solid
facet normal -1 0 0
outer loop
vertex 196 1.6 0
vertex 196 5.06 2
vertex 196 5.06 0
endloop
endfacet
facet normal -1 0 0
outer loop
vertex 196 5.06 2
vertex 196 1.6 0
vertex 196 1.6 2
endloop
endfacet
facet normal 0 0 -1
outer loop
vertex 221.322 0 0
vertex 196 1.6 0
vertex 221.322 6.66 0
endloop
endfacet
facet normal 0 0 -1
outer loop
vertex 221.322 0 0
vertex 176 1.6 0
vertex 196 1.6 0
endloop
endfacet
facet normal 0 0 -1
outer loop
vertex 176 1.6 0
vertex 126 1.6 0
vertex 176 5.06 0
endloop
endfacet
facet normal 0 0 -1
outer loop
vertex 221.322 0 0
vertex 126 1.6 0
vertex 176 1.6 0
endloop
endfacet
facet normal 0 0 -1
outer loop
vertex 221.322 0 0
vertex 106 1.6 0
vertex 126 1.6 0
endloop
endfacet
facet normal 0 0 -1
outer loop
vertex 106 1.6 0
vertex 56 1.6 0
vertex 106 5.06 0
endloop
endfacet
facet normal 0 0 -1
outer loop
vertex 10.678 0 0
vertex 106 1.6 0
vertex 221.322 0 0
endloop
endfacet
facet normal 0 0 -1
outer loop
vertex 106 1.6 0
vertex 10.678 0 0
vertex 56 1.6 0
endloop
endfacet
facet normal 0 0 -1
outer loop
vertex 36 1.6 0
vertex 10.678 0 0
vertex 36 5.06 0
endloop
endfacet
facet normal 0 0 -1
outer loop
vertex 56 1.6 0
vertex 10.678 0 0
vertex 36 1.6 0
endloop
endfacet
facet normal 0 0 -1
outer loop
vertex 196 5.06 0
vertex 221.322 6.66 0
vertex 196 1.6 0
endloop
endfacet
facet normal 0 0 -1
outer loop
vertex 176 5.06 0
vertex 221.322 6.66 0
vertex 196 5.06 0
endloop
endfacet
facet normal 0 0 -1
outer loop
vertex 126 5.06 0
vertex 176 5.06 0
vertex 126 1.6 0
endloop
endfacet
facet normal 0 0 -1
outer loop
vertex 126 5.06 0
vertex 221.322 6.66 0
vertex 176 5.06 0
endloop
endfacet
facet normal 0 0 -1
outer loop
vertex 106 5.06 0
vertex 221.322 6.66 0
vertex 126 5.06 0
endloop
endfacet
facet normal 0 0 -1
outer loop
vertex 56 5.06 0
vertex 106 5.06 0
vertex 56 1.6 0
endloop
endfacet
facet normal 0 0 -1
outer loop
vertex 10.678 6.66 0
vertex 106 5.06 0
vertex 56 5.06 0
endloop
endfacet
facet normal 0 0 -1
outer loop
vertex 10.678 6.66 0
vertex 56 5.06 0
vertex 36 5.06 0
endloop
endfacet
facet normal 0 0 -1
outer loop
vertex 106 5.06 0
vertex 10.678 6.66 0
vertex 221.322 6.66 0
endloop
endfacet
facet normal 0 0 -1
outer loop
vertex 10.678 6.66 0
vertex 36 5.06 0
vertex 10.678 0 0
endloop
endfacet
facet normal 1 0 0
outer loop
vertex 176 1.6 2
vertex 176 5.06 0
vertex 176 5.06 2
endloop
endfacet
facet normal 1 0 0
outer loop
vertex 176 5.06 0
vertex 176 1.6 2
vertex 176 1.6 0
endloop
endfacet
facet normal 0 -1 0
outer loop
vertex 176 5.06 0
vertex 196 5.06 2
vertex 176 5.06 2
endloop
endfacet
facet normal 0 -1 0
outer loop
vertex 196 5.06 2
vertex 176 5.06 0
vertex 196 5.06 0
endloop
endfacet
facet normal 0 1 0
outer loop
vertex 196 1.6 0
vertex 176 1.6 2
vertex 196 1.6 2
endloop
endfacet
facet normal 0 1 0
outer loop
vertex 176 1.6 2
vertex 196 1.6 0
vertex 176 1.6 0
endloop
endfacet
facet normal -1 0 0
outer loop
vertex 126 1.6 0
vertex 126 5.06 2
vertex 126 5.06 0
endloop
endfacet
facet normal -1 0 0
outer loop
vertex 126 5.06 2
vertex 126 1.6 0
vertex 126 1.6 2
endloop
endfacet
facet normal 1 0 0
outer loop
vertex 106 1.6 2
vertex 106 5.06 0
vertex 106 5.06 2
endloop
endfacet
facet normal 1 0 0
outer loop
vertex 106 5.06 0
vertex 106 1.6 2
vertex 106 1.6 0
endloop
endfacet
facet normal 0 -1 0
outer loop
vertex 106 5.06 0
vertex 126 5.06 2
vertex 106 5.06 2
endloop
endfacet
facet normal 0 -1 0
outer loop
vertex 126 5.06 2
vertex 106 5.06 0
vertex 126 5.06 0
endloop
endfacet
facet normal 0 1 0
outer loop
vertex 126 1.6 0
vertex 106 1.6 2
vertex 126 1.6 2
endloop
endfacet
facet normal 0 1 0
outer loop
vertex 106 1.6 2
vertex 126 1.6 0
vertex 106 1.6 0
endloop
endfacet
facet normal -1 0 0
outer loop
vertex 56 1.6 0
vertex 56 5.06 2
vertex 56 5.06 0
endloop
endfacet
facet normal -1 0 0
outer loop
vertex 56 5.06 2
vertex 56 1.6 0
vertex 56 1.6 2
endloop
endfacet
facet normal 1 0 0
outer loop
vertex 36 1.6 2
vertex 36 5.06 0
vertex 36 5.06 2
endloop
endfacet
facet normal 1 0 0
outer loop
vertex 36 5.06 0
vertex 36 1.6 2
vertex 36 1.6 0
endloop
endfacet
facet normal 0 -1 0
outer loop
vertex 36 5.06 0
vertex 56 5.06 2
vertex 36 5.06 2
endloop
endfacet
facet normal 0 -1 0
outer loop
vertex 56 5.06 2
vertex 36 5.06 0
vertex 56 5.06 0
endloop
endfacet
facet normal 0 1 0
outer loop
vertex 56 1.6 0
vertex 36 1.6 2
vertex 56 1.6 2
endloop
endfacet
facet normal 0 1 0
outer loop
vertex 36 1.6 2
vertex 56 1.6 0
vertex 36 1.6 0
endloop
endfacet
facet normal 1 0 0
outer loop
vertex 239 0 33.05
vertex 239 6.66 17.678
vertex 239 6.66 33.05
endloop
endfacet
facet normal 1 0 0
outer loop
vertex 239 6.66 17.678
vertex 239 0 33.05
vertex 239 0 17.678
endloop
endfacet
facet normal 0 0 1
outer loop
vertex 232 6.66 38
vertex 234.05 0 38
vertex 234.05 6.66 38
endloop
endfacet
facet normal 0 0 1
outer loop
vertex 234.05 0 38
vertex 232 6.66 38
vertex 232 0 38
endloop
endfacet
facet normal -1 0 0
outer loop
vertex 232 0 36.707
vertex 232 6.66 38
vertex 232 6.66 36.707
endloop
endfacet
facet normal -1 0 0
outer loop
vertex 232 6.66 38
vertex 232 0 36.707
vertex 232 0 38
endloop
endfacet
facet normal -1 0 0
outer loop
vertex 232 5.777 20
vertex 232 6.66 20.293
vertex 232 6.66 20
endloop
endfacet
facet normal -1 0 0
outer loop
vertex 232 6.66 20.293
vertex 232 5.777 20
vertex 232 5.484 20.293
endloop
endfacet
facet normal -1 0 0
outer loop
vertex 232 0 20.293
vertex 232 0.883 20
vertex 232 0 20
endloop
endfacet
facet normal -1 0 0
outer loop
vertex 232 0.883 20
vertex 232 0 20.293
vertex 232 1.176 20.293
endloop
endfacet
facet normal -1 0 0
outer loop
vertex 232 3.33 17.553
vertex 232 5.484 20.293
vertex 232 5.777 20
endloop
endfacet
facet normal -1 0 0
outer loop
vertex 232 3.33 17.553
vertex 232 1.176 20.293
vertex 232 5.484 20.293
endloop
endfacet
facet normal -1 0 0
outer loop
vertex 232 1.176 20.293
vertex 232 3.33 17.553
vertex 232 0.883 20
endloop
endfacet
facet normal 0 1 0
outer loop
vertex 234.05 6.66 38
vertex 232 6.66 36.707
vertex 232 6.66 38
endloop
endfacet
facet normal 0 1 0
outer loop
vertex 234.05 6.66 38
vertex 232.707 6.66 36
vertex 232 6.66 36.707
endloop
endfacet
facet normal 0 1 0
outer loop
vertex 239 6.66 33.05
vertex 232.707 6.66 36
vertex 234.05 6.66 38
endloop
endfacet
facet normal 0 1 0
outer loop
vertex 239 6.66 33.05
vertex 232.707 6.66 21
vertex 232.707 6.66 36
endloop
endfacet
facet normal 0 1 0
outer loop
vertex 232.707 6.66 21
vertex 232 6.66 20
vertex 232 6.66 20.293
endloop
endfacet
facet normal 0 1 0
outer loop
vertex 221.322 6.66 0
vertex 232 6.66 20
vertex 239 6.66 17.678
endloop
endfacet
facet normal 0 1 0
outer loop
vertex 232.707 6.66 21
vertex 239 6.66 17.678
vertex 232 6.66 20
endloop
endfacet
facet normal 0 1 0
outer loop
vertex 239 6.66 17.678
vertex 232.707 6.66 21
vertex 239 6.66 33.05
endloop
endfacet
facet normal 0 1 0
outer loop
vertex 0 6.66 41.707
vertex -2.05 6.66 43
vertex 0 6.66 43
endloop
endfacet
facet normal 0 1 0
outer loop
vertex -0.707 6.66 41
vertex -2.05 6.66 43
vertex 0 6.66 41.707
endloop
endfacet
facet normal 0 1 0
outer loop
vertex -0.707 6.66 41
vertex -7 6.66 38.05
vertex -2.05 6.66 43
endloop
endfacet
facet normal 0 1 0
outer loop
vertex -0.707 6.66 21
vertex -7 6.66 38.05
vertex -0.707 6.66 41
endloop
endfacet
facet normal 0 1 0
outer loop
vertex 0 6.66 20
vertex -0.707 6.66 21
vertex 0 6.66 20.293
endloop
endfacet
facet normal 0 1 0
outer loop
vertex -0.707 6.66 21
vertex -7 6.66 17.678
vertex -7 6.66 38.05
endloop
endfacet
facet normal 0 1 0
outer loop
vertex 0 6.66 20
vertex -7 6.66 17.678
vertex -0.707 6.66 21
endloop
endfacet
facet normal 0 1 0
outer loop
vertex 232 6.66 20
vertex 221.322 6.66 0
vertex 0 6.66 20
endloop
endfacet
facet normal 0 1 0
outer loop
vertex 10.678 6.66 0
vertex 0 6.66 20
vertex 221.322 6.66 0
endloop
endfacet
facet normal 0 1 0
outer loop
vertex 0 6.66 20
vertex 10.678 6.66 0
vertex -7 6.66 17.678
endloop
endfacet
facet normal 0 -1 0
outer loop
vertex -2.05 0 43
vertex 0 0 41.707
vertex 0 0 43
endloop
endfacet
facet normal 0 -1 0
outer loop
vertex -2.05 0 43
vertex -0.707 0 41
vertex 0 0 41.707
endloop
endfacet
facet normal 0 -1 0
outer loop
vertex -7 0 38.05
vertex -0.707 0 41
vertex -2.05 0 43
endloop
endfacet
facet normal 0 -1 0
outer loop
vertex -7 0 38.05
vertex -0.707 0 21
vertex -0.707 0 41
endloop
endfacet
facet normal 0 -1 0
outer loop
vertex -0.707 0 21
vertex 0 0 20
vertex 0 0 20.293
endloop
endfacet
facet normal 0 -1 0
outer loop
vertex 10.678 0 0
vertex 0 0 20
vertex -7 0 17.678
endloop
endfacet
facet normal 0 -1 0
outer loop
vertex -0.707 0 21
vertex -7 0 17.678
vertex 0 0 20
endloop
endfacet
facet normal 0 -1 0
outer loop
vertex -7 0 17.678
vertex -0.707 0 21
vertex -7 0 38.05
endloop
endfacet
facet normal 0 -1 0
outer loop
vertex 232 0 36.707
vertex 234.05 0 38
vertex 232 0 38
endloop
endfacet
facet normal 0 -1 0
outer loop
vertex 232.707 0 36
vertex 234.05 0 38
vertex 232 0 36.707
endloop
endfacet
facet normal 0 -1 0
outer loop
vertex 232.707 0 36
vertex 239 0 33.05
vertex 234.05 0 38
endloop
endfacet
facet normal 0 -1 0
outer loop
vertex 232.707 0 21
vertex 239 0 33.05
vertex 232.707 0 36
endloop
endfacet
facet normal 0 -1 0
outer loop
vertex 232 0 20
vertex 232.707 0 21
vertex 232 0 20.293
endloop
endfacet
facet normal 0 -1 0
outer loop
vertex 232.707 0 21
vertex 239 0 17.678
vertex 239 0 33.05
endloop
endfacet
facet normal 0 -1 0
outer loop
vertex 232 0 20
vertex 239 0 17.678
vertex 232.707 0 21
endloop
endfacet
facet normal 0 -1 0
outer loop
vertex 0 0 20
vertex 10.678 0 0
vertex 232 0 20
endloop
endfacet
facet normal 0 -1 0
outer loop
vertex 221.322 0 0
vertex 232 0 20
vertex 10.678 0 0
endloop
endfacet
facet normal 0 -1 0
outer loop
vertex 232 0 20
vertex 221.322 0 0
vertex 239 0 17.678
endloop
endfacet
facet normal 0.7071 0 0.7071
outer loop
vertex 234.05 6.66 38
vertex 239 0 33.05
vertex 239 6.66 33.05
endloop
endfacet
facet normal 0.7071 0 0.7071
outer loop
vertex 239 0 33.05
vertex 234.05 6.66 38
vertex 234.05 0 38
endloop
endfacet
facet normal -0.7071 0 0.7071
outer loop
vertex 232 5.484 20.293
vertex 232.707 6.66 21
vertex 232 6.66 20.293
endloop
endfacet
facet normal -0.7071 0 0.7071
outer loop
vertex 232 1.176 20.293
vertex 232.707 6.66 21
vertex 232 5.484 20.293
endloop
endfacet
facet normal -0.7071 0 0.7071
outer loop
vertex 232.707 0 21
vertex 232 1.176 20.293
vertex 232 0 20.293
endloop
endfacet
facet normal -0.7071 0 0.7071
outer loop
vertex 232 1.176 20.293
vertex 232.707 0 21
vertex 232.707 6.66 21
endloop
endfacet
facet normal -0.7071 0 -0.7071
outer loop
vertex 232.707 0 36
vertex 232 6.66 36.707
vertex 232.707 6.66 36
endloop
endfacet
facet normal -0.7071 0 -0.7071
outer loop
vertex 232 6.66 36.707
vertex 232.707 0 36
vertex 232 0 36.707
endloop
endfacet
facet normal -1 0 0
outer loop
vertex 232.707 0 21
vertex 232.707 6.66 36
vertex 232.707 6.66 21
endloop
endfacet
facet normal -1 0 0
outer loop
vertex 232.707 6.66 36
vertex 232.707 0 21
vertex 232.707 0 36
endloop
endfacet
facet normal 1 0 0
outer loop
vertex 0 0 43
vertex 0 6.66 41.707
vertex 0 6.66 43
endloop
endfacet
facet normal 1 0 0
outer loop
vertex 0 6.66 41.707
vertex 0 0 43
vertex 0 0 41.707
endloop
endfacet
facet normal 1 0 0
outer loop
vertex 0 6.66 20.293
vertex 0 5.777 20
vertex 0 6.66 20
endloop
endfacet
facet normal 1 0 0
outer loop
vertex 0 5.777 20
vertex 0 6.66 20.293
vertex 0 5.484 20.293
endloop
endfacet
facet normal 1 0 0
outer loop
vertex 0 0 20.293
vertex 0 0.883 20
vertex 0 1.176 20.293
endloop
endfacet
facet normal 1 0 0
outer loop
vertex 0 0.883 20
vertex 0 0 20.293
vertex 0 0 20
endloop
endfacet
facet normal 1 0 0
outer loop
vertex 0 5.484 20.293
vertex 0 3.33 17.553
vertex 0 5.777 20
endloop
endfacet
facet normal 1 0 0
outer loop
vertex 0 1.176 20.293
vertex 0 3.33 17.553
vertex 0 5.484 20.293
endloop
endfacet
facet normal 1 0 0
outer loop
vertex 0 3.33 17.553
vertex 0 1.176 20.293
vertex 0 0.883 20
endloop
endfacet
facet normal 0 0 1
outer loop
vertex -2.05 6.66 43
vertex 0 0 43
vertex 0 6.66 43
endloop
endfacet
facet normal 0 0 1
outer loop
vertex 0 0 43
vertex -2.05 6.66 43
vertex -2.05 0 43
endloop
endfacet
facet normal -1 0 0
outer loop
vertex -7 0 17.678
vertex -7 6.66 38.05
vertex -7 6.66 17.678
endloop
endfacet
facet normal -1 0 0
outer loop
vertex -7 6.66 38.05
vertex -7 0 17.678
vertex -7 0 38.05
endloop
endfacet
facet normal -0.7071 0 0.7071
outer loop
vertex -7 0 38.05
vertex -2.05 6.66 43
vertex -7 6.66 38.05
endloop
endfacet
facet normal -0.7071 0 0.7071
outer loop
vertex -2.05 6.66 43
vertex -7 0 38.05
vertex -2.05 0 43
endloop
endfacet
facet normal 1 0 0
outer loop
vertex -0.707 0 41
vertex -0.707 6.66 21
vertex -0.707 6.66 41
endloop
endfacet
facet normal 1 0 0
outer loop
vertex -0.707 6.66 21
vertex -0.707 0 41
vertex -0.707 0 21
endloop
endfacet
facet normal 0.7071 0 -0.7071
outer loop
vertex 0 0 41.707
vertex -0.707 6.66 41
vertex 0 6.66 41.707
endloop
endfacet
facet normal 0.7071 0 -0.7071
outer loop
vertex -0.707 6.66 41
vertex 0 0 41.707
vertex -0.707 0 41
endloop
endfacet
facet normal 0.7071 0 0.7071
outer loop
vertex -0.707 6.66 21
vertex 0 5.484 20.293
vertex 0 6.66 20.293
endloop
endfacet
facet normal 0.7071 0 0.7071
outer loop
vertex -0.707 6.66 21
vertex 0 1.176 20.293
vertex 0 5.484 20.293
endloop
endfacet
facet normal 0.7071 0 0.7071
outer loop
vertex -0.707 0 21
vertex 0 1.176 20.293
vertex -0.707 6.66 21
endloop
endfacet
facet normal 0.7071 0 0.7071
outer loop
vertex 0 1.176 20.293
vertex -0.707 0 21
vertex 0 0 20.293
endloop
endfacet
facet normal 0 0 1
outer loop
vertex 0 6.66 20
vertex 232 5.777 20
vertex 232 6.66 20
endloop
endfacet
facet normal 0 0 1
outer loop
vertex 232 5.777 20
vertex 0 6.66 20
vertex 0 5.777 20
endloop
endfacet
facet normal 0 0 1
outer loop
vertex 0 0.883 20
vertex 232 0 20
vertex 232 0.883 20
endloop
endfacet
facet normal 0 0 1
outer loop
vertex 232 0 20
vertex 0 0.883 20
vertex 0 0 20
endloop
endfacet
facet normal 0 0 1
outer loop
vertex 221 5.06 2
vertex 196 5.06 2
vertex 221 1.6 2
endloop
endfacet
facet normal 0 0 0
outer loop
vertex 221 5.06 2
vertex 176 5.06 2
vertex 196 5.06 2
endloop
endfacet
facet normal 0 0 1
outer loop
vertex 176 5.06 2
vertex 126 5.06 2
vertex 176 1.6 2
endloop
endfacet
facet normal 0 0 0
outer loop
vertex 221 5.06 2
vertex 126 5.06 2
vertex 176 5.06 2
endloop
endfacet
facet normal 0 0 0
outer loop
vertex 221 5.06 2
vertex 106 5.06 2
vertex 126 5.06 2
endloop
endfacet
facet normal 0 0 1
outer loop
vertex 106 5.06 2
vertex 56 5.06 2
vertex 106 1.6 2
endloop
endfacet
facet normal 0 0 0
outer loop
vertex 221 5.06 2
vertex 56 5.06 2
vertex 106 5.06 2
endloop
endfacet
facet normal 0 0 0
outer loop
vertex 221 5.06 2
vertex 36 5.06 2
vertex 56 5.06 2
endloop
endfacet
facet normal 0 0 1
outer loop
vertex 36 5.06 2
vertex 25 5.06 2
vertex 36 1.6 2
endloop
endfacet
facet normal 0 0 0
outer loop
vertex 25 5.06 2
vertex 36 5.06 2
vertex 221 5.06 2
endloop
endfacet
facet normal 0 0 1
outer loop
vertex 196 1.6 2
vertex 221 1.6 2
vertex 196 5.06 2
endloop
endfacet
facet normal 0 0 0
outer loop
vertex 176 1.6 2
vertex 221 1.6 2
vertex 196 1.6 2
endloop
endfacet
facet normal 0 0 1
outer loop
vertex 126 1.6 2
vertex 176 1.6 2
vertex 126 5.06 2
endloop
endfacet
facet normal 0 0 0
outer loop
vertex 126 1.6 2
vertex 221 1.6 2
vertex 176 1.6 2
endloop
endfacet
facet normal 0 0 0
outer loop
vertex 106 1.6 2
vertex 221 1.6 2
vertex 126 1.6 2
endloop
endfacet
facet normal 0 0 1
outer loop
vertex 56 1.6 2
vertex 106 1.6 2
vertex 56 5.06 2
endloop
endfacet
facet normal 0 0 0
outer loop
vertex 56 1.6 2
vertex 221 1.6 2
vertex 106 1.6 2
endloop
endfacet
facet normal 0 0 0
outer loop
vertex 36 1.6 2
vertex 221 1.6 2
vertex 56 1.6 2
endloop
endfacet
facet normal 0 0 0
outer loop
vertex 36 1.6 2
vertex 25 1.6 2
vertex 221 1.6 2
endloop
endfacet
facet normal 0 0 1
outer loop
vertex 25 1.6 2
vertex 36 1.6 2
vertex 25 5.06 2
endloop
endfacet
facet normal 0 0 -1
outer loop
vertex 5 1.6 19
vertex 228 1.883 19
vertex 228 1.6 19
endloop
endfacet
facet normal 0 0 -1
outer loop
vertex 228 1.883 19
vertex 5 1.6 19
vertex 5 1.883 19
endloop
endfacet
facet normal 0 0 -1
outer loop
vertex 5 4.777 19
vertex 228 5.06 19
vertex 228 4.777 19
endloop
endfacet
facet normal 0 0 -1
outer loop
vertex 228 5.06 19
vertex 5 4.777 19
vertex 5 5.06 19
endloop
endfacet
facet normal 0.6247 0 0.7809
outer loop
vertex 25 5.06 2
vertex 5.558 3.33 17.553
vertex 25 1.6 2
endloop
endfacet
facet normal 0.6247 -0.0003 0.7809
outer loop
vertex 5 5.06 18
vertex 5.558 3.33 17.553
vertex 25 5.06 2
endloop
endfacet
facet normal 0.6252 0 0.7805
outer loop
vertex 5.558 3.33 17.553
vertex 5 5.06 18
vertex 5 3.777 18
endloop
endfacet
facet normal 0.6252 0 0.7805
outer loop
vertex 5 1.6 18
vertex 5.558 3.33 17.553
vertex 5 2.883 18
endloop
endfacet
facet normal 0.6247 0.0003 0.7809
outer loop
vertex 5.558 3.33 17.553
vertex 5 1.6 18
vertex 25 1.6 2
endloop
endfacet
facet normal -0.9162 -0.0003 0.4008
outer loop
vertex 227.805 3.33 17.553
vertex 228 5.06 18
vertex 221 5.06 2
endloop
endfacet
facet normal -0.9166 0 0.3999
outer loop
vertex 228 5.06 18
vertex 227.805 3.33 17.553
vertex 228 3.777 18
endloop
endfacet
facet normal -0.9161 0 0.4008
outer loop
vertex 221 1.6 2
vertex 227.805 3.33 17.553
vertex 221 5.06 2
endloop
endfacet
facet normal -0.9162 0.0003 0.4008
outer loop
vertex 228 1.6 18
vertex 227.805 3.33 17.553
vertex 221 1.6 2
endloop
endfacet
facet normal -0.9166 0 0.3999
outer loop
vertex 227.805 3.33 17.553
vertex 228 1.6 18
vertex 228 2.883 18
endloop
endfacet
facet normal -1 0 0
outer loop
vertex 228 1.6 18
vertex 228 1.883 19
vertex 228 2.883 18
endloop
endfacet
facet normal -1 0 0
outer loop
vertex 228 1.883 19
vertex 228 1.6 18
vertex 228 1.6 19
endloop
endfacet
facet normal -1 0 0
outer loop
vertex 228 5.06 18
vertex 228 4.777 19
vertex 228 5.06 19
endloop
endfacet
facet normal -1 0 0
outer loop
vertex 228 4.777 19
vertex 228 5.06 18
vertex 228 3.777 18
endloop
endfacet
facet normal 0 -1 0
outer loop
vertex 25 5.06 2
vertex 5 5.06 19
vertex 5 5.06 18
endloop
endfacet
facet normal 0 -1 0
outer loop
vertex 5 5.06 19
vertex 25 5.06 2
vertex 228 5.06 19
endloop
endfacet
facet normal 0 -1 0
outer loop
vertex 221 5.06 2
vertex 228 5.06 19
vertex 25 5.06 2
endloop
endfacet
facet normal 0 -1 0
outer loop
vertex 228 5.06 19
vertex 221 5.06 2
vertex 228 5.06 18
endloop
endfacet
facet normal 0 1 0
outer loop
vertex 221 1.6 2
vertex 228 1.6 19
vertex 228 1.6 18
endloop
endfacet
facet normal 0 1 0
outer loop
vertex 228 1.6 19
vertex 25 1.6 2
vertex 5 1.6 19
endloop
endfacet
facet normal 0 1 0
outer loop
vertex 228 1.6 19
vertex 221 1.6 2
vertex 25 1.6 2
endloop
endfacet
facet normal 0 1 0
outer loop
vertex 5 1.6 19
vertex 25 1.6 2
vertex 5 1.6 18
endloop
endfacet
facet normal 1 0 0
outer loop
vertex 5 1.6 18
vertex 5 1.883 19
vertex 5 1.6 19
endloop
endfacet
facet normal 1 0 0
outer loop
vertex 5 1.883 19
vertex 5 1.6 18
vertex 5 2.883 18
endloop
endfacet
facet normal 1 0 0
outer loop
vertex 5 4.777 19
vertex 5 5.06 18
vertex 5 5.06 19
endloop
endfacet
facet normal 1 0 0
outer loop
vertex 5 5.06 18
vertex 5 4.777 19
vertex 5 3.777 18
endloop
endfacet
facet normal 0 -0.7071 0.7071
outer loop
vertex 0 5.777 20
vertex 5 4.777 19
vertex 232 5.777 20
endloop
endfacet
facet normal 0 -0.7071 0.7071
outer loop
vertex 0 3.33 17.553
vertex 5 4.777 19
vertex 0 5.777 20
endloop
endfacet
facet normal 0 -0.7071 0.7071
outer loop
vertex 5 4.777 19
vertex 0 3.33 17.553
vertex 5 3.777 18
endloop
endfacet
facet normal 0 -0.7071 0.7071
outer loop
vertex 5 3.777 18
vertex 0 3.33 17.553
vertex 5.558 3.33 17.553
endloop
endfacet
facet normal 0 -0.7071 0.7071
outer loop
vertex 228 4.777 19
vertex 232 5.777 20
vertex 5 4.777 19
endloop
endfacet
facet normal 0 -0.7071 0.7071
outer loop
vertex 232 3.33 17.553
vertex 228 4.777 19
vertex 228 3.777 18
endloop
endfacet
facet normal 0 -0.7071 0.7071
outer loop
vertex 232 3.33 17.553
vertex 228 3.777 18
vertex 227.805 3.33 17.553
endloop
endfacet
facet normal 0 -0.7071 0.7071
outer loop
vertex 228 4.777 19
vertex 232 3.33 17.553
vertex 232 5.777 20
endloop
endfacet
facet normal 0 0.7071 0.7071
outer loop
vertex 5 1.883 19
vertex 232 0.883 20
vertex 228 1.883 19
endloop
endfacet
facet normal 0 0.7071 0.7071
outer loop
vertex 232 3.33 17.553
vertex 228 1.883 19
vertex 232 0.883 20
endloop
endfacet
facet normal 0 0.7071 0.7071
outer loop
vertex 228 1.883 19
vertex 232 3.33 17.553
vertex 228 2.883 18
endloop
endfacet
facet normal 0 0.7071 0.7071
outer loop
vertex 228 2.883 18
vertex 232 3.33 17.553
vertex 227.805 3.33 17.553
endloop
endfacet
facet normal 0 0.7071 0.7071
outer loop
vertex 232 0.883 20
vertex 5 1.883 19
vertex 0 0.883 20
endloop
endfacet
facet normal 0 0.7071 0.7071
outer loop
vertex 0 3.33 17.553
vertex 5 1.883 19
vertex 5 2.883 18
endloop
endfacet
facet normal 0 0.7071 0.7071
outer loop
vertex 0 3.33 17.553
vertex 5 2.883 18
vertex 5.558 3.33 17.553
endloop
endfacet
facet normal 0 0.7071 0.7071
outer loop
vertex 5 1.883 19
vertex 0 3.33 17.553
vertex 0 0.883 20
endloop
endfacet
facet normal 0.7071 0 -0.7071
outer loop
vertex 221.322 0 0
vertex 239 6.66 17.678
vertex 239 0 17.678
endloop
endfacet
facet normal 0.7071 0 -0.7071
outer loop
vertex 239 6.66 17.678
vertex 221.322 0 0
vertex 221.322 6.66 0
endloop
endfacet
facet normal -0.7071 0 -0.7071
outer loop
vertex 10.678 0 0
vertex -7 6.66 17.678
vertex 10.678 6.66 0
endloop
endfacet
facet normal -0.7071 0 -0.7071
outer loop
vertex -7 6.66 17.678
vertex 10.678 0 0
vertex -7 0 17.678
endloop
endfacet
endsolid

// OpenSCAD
l=232;
iw=3.46;
wall=1.6;
ow=iw+2*wall;
h=20;
back_h=h+18;
front_h=h+23;
l_lock=7;


module sikmina() {
    color("red") rotate([0,45,0]) cube([l_lock,20,l_lock], center=true);
}


module innersikmina() {
    translate([0,ow/2,0]) difference() {
        rotate([0,45,0]) cube([26, ow, 26], center=true);
        translate([0,0, -50]) cube(100, center=true);
    }
}

module maxisikmina() {
    color("red") rotate([0,45,0]) cube(25, center=true);
}

module minisikmina() {
    color("red") rotate([0,45,0]) cube([1,3*ow,1], center=true);
}

difference() {
    union() {
        cube([l, ow, h]);

        translate([l, 0, 0]) difference() {
            cube([l_lock, ow, back_h]);
            
            translate([l_lock, 0, back_h]) sikmina();

            hull() {
                translate([0, 0, h+1]) minisikmina();
                translate([0, 0, back_h-2]) minisikmina();
            }
        }

        translate([-l_lock, 0, 0]) difference() {
            cube([l_lock, ow, front_h]);
            
            translate([0, 0, front_h]) sikmina();
            
            hull() {
                translate([l_lock, 0, h+1]) minisikmina();
                translate([l_lock, 0, front_h-2]) minisikmina();
            }
        }
    }
    
    translate([0, wall, 0]) hull() {
        translate([5, 0, h-2]) cube([l-9, iw, 1]);
        translate([25, 0, 2]) cube([l-36, iw, 1]);
    }
    translate([l/2, ow/2, h]) rotate([45,0,0]) 
        cube([l, iw, iw], center=true);
    
    translate([l/2, wall, 0]) {
        translate([60, 0, 0]) cube([20, iw, 4]);
        translate([-10, 0, 0]) cube([20, iw, 4]);
        translate([-60-20, 0, 0]) cube([20, iw, 4]);
    }
    
    translate([l+l_lock, 0, 0]) maxisikmina();
    translate([-l_lock, 0, 0]) maxisikmina();
}
